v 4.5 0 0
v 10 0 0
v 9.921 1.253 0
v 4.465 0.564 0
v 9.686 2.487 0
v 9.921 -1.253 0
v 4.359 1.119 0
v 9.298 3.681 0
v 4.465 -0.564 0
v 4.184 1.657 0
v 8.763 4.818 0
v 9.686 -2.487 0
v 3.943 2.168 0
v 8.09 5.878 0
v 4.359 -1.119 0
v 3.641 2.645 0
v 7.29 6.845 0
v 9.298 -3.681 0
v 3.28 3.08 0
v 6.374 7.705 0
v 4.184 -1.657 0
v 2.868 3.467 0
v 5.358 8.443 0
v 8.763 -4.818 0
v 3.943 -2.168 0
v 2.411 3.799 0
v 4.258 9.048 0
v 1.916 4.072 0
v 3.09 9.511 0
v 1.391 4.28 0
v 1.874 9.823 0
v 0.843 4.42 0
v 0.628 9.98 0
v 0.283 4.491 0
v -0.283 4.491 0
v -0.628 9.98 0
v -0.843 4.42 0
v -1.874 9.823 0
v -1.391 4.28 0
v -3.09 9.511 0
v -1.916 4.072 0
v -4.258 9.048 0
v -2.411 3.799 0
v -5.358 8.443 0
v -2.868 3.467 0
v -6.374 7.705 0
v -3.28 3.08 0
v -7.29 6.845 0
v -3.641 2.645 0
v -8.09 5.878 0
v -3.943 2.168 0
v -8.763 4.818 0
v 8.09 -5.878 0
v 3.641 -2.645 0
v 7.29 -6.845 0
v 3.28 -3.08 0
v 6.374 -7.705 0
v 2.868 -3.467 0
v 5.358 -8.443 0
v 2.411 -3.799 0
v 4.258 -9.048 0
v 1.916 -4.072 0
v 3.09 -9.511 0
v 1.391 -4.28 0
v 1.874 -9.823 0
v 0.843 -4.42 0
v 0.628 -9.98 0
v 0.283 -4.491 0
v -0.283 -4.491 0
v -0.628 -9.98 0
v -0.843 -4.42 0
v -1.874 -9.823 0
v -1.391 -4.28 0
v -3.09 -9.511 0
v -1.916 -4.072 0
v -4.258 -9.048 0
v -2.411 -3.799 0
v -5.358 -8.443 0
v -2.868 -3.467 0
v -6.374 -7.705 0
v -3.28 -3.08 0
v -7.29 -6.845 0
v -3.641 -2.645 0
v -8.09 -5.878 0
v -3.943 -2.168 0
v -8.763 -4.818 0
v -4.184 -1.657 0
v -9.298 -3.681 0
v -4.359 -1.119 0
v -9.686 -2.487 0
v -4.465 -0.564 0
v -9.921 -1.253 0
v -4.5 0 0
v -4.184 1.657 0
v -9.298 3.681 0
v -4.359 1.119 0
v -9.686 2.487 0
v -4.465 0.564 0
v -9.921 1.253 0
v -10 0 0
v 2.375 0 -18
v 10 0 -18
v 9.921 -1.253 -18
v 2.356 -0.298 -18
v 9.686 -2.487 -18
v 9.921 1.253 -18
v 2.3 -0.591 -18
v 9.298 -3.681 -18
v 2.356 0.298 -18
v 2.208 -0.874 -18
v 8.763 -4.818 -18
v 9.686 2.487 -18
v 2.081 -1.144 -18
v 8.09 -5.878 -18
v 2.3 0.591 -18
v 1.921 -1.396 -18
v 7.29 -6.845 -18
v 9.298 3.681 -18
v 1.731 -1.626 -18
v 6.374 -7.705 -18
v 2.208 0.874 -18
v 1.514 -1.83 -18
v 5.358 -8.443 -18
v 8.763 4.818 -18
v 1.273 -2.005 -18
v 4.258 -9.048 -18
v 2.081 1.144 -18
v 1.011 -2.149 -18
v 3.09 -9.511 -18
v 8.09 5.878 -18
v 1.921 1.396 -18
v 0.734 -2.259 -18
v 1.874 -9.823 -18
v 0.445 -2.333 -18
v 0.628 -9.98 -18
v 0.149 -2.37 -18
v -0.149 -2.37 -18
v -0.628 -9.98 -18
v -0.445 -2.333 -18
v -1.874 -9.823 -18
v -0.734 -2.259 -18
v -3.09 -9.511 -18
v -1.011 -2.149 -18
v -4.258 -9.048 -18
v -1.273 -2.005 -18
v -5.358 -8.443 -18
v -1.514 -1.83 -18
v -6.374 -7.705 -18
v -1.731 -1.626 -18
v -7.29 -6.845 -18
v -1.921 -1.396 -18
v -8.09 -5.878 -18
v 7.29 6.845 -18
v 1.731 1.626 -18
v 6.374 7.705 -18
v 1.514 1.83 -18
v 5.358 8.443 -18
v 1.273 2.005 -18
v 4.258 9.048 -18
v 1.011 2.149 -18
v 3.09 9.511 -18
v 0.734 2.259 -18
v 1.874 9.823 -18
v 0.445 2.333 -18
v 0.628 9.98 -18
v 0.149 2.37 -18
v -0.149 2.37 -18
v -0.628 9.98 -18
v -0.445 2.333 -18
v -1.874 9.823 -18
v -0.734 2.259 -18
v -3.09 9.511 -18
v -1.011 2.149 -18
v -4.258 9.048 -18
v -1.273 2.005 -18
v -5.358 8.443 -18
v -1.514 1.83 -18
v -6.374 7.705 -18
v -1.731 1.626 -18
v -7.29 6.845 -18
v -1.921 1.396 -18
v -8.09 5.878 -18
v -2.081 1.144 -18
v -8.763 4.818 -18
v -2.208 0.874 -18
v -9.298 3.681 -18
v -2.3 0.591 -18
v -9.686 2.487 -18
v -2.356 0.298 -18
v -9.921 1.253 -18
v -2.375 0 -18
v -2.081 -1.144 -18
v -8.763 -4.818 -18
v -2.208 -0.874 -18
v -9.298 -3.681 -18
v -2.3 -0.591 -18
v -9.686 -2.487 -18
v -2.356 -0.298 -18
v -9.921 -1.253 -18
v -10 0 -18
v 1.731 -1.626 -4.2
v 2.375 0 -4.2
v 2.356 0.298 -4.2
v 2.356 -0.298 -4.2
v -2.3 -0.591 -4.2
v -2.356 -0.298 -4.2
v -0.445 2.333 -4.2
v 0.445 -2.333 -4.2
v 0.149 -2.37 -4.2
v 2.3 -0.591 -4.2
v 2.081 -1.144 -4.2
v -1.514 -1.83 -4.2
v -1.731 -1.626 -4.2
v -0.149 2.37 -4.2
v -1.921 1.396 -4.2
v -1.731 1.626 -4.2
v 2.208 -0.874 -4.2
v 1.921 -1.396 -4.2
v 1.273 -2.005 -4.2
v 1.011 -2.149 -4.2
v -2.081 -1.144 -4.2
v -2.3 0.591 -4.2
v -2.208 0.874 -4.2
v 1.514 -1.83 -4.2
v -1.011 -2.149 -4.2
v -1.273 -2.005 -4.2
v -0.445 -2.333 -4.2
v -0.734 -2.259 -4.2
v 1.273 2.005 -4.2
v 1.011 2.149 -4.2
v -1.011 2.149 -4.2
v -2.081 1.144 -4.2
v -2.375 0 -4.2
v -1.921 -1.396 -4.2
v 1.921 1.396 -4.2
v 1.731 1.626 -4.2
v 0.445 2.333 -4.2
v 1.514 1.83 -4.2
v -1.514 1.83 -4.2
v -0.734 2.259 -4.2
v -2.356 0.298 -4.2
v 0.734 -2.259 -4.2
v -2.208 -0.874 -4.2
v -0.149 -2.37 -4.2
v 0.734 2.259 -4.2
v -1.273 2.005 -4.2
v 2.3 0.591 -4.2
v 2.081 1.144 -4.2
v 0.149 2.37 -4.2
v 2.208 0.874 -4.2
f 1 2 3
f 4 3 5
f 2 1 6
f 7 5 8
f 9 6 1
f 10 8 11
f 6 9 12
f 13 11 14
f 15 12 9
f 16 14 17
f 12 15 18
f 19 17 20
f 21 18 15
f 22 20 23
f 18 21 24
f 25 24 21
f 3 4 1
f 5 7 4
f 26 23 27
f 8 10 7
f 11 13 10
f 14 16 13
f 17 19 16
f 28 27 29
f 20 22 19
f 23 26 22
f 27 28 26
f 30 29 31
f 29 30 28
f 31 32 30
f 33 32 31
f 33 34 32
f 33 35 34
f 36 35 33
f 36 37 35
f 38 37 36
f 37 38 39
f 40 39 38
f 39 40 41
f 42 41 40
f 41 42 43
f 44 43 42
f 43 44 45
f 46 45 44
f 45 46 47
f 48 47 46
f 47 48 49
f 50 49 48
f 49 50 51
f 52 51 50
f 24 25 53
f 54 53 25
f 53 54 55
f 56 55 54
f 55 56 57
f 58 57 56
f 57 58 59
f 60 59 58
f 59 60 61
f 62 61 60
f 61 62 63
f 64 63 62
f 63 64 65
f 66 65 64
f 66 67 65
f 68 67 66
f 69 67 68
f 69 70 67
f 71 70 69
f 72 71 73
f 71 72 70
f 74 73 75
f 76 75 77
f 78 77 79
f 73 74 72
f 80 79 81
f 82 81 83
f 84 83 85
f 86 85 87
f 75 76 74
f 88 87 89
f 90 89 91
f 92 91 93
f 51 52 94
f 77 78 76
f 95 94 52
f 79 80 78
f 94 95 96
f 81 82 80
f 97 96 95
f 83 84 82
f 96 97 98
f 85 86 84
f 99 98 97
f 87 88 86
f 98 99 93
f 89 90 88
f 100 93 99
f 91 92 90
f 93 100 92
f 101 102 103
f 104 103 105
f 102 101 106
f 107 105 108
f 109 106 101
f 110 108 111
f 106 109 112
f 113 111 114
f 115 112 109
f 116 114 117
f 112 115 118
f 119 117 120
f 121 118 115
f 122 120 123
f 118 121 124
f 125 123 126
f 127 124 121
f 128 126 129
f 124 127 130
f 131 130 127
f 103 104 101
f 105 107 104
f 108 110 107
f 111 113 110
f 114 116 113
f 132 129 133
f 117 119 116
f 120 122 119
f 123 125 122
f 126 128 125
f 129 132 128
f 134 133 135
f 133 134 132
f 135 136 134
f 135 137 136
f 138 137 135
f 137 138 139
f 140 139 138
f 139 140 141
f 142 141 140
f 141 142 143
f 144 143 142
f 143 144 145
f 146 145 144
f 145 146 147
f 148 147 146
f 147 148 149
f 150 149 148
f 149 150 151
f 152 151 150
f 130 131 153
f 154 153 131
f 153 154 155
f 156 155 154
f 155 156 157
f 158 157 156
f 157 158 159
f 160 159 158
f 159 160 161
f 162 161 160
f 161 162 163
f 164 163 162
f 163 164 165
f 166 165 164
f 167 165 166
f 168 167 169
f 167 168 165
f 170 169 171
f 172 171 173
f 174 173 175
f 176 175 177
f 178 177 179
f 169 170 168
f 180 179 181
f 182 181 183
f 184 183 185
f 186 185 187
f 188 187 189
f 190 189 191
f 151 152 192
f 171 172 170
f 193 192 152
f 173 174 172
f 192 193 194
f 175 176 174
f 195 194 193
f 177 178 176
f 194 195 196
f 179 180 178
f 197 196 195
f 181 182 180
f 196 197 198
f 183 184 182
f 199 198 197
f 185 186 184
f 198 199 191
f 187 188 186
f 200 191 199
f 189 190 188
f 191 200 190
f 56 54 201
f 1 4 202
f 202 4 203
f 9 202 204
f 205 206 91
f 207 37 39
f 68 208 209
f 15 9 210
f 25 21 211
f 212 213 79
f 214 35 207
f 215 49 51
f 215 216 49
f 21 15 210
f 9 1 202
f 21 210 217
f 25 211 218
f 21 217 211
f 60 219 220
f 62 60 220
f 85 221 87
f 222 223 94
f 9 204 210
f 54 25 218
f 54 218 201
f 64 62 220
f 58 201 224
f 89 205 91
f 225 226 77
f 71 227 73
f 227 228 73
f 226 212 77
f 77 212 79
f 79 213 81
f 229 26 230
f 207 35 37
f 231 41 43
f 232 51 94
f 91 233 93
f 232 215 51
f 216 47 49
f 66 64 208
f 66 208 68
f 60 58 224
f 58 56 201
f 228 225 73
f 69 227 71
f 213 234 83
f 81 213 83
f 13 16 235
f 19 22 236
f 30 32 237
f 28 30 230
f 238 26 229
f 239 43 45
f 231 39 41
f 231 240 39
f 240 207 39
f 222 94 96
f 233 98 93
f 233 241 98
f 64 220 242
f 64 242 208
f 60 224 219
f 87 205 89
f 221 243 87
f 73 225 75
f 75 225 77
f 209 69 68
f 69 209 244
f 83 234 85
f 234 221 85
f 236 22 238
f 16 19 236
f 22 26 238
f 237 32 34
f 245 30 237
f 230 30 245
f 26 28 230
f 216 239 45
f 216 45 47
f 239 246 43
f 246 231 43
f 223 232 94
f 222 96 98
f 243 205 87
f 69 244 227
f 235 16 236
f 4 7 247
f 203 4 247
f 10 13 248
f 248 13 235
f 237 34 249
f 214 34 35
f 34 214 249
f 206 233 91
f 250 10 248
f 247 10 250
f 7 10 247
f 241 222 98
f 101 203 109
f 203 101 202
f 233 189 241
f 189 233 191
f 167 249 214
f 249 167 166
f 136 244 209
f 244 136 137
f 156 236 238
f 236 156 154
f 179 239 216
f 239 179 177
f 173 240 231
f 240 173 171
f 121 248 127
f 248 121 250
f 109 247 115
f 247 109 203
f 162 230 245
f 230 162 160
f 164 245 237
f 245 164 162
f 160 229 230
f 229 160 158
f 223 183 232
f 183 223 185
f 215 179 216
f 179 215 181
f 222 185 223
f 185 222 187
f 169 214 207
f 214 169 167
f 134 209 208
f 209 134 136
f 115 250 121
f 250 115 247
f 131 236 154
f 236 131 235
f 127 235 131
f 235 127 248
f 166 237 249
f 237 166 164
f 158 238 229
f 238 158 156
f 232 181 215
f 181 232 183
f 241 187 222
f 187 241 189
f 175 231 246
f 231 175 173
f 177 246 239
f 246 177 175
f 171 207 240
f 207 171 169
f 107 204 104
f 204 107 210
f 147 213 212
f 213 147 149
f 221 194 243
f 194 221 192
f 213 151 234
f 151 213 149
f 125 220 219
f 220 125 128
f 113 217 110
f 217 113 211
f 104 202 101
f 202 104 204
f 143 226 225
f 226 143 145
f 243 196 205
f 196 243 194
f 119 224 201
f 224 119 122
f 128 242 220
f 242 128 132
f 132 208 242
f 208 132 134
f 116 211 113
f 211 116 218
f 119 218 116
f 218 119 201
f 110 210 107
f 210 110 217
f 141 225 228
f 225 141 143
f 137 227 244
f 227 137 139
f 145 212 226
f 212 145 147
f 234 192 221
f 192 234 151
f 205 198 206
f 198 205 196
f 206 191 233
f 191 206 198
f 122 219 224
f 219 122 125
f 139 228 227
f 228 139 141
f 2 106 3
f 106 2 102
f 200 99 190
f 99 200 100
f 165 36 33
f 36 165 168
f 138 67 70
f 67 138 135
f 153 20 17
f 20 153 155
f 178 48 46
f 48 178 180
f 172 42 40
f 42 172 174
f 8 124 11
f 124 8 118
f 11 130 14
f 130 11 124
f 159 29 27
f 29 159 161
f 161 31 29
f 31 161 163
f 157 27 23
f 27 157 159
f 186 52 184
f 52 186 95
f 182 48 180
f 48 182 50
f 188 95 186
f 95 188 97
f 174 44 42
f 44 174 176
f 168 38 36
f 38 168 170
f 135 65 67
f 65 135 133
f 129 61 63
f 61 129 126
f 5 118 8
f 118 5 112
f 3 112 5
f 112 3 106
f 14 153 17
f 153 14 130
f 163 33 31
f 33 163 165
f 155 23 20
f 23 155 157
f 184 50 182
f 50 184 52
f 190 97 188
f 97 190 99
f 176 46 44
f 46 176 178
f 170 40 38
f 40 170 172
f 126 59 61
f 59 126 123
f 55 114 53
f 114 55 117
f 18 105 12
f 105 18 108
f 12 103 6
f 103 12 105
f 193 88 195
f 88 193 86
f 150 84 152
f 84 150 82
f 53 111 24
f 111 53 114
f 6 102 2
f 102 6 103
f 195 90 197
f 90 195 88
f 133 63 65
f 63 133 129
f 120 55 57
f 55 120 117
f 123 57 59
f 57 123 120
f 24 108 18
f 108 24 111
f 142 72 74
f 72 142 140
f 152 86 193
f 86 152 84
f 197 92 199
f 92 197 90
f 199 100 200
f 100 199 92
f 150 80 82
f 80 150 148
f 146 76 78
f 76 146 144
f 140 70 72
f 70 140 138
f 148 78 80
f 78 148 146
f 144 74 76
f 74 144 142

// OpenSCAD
$fn = 50;


difference() {
	union() {
		translate(v = [0, 0, -18.0000000000]) {
			cylinder(h = 18, r = 10.0000000000);
		}
		cylinder(h = 0, r = 16.0000000000);
	}
	union() {
		translate(v = [0, 0, 0]) {
			rotate(a = [0, 0, 0]) {
				difference() {
					union() {
						#translate(v = [0, 0, -18.0000000000]) {
							cylinder(h = 18, r = 2.2500000000);
						}
						#translate(v = [0, 0, -4.2000000000]) {
							cylinder(h = 4.2000000000, r = 10.0000000000, r1 = 2.3750000000, r2 = 4.5000000000);
						}
						#translate(v = [0, 0, -18.0000000000]) {
							cylinder(h = 18, r = 2.3750000000);
						}
						#translate(v = [0, 0, -18.0000000000]) {
							cylinder(h = 18, r = 2.2500000000);
						}
					}
					union();
				}
			}
		}
	}
}
